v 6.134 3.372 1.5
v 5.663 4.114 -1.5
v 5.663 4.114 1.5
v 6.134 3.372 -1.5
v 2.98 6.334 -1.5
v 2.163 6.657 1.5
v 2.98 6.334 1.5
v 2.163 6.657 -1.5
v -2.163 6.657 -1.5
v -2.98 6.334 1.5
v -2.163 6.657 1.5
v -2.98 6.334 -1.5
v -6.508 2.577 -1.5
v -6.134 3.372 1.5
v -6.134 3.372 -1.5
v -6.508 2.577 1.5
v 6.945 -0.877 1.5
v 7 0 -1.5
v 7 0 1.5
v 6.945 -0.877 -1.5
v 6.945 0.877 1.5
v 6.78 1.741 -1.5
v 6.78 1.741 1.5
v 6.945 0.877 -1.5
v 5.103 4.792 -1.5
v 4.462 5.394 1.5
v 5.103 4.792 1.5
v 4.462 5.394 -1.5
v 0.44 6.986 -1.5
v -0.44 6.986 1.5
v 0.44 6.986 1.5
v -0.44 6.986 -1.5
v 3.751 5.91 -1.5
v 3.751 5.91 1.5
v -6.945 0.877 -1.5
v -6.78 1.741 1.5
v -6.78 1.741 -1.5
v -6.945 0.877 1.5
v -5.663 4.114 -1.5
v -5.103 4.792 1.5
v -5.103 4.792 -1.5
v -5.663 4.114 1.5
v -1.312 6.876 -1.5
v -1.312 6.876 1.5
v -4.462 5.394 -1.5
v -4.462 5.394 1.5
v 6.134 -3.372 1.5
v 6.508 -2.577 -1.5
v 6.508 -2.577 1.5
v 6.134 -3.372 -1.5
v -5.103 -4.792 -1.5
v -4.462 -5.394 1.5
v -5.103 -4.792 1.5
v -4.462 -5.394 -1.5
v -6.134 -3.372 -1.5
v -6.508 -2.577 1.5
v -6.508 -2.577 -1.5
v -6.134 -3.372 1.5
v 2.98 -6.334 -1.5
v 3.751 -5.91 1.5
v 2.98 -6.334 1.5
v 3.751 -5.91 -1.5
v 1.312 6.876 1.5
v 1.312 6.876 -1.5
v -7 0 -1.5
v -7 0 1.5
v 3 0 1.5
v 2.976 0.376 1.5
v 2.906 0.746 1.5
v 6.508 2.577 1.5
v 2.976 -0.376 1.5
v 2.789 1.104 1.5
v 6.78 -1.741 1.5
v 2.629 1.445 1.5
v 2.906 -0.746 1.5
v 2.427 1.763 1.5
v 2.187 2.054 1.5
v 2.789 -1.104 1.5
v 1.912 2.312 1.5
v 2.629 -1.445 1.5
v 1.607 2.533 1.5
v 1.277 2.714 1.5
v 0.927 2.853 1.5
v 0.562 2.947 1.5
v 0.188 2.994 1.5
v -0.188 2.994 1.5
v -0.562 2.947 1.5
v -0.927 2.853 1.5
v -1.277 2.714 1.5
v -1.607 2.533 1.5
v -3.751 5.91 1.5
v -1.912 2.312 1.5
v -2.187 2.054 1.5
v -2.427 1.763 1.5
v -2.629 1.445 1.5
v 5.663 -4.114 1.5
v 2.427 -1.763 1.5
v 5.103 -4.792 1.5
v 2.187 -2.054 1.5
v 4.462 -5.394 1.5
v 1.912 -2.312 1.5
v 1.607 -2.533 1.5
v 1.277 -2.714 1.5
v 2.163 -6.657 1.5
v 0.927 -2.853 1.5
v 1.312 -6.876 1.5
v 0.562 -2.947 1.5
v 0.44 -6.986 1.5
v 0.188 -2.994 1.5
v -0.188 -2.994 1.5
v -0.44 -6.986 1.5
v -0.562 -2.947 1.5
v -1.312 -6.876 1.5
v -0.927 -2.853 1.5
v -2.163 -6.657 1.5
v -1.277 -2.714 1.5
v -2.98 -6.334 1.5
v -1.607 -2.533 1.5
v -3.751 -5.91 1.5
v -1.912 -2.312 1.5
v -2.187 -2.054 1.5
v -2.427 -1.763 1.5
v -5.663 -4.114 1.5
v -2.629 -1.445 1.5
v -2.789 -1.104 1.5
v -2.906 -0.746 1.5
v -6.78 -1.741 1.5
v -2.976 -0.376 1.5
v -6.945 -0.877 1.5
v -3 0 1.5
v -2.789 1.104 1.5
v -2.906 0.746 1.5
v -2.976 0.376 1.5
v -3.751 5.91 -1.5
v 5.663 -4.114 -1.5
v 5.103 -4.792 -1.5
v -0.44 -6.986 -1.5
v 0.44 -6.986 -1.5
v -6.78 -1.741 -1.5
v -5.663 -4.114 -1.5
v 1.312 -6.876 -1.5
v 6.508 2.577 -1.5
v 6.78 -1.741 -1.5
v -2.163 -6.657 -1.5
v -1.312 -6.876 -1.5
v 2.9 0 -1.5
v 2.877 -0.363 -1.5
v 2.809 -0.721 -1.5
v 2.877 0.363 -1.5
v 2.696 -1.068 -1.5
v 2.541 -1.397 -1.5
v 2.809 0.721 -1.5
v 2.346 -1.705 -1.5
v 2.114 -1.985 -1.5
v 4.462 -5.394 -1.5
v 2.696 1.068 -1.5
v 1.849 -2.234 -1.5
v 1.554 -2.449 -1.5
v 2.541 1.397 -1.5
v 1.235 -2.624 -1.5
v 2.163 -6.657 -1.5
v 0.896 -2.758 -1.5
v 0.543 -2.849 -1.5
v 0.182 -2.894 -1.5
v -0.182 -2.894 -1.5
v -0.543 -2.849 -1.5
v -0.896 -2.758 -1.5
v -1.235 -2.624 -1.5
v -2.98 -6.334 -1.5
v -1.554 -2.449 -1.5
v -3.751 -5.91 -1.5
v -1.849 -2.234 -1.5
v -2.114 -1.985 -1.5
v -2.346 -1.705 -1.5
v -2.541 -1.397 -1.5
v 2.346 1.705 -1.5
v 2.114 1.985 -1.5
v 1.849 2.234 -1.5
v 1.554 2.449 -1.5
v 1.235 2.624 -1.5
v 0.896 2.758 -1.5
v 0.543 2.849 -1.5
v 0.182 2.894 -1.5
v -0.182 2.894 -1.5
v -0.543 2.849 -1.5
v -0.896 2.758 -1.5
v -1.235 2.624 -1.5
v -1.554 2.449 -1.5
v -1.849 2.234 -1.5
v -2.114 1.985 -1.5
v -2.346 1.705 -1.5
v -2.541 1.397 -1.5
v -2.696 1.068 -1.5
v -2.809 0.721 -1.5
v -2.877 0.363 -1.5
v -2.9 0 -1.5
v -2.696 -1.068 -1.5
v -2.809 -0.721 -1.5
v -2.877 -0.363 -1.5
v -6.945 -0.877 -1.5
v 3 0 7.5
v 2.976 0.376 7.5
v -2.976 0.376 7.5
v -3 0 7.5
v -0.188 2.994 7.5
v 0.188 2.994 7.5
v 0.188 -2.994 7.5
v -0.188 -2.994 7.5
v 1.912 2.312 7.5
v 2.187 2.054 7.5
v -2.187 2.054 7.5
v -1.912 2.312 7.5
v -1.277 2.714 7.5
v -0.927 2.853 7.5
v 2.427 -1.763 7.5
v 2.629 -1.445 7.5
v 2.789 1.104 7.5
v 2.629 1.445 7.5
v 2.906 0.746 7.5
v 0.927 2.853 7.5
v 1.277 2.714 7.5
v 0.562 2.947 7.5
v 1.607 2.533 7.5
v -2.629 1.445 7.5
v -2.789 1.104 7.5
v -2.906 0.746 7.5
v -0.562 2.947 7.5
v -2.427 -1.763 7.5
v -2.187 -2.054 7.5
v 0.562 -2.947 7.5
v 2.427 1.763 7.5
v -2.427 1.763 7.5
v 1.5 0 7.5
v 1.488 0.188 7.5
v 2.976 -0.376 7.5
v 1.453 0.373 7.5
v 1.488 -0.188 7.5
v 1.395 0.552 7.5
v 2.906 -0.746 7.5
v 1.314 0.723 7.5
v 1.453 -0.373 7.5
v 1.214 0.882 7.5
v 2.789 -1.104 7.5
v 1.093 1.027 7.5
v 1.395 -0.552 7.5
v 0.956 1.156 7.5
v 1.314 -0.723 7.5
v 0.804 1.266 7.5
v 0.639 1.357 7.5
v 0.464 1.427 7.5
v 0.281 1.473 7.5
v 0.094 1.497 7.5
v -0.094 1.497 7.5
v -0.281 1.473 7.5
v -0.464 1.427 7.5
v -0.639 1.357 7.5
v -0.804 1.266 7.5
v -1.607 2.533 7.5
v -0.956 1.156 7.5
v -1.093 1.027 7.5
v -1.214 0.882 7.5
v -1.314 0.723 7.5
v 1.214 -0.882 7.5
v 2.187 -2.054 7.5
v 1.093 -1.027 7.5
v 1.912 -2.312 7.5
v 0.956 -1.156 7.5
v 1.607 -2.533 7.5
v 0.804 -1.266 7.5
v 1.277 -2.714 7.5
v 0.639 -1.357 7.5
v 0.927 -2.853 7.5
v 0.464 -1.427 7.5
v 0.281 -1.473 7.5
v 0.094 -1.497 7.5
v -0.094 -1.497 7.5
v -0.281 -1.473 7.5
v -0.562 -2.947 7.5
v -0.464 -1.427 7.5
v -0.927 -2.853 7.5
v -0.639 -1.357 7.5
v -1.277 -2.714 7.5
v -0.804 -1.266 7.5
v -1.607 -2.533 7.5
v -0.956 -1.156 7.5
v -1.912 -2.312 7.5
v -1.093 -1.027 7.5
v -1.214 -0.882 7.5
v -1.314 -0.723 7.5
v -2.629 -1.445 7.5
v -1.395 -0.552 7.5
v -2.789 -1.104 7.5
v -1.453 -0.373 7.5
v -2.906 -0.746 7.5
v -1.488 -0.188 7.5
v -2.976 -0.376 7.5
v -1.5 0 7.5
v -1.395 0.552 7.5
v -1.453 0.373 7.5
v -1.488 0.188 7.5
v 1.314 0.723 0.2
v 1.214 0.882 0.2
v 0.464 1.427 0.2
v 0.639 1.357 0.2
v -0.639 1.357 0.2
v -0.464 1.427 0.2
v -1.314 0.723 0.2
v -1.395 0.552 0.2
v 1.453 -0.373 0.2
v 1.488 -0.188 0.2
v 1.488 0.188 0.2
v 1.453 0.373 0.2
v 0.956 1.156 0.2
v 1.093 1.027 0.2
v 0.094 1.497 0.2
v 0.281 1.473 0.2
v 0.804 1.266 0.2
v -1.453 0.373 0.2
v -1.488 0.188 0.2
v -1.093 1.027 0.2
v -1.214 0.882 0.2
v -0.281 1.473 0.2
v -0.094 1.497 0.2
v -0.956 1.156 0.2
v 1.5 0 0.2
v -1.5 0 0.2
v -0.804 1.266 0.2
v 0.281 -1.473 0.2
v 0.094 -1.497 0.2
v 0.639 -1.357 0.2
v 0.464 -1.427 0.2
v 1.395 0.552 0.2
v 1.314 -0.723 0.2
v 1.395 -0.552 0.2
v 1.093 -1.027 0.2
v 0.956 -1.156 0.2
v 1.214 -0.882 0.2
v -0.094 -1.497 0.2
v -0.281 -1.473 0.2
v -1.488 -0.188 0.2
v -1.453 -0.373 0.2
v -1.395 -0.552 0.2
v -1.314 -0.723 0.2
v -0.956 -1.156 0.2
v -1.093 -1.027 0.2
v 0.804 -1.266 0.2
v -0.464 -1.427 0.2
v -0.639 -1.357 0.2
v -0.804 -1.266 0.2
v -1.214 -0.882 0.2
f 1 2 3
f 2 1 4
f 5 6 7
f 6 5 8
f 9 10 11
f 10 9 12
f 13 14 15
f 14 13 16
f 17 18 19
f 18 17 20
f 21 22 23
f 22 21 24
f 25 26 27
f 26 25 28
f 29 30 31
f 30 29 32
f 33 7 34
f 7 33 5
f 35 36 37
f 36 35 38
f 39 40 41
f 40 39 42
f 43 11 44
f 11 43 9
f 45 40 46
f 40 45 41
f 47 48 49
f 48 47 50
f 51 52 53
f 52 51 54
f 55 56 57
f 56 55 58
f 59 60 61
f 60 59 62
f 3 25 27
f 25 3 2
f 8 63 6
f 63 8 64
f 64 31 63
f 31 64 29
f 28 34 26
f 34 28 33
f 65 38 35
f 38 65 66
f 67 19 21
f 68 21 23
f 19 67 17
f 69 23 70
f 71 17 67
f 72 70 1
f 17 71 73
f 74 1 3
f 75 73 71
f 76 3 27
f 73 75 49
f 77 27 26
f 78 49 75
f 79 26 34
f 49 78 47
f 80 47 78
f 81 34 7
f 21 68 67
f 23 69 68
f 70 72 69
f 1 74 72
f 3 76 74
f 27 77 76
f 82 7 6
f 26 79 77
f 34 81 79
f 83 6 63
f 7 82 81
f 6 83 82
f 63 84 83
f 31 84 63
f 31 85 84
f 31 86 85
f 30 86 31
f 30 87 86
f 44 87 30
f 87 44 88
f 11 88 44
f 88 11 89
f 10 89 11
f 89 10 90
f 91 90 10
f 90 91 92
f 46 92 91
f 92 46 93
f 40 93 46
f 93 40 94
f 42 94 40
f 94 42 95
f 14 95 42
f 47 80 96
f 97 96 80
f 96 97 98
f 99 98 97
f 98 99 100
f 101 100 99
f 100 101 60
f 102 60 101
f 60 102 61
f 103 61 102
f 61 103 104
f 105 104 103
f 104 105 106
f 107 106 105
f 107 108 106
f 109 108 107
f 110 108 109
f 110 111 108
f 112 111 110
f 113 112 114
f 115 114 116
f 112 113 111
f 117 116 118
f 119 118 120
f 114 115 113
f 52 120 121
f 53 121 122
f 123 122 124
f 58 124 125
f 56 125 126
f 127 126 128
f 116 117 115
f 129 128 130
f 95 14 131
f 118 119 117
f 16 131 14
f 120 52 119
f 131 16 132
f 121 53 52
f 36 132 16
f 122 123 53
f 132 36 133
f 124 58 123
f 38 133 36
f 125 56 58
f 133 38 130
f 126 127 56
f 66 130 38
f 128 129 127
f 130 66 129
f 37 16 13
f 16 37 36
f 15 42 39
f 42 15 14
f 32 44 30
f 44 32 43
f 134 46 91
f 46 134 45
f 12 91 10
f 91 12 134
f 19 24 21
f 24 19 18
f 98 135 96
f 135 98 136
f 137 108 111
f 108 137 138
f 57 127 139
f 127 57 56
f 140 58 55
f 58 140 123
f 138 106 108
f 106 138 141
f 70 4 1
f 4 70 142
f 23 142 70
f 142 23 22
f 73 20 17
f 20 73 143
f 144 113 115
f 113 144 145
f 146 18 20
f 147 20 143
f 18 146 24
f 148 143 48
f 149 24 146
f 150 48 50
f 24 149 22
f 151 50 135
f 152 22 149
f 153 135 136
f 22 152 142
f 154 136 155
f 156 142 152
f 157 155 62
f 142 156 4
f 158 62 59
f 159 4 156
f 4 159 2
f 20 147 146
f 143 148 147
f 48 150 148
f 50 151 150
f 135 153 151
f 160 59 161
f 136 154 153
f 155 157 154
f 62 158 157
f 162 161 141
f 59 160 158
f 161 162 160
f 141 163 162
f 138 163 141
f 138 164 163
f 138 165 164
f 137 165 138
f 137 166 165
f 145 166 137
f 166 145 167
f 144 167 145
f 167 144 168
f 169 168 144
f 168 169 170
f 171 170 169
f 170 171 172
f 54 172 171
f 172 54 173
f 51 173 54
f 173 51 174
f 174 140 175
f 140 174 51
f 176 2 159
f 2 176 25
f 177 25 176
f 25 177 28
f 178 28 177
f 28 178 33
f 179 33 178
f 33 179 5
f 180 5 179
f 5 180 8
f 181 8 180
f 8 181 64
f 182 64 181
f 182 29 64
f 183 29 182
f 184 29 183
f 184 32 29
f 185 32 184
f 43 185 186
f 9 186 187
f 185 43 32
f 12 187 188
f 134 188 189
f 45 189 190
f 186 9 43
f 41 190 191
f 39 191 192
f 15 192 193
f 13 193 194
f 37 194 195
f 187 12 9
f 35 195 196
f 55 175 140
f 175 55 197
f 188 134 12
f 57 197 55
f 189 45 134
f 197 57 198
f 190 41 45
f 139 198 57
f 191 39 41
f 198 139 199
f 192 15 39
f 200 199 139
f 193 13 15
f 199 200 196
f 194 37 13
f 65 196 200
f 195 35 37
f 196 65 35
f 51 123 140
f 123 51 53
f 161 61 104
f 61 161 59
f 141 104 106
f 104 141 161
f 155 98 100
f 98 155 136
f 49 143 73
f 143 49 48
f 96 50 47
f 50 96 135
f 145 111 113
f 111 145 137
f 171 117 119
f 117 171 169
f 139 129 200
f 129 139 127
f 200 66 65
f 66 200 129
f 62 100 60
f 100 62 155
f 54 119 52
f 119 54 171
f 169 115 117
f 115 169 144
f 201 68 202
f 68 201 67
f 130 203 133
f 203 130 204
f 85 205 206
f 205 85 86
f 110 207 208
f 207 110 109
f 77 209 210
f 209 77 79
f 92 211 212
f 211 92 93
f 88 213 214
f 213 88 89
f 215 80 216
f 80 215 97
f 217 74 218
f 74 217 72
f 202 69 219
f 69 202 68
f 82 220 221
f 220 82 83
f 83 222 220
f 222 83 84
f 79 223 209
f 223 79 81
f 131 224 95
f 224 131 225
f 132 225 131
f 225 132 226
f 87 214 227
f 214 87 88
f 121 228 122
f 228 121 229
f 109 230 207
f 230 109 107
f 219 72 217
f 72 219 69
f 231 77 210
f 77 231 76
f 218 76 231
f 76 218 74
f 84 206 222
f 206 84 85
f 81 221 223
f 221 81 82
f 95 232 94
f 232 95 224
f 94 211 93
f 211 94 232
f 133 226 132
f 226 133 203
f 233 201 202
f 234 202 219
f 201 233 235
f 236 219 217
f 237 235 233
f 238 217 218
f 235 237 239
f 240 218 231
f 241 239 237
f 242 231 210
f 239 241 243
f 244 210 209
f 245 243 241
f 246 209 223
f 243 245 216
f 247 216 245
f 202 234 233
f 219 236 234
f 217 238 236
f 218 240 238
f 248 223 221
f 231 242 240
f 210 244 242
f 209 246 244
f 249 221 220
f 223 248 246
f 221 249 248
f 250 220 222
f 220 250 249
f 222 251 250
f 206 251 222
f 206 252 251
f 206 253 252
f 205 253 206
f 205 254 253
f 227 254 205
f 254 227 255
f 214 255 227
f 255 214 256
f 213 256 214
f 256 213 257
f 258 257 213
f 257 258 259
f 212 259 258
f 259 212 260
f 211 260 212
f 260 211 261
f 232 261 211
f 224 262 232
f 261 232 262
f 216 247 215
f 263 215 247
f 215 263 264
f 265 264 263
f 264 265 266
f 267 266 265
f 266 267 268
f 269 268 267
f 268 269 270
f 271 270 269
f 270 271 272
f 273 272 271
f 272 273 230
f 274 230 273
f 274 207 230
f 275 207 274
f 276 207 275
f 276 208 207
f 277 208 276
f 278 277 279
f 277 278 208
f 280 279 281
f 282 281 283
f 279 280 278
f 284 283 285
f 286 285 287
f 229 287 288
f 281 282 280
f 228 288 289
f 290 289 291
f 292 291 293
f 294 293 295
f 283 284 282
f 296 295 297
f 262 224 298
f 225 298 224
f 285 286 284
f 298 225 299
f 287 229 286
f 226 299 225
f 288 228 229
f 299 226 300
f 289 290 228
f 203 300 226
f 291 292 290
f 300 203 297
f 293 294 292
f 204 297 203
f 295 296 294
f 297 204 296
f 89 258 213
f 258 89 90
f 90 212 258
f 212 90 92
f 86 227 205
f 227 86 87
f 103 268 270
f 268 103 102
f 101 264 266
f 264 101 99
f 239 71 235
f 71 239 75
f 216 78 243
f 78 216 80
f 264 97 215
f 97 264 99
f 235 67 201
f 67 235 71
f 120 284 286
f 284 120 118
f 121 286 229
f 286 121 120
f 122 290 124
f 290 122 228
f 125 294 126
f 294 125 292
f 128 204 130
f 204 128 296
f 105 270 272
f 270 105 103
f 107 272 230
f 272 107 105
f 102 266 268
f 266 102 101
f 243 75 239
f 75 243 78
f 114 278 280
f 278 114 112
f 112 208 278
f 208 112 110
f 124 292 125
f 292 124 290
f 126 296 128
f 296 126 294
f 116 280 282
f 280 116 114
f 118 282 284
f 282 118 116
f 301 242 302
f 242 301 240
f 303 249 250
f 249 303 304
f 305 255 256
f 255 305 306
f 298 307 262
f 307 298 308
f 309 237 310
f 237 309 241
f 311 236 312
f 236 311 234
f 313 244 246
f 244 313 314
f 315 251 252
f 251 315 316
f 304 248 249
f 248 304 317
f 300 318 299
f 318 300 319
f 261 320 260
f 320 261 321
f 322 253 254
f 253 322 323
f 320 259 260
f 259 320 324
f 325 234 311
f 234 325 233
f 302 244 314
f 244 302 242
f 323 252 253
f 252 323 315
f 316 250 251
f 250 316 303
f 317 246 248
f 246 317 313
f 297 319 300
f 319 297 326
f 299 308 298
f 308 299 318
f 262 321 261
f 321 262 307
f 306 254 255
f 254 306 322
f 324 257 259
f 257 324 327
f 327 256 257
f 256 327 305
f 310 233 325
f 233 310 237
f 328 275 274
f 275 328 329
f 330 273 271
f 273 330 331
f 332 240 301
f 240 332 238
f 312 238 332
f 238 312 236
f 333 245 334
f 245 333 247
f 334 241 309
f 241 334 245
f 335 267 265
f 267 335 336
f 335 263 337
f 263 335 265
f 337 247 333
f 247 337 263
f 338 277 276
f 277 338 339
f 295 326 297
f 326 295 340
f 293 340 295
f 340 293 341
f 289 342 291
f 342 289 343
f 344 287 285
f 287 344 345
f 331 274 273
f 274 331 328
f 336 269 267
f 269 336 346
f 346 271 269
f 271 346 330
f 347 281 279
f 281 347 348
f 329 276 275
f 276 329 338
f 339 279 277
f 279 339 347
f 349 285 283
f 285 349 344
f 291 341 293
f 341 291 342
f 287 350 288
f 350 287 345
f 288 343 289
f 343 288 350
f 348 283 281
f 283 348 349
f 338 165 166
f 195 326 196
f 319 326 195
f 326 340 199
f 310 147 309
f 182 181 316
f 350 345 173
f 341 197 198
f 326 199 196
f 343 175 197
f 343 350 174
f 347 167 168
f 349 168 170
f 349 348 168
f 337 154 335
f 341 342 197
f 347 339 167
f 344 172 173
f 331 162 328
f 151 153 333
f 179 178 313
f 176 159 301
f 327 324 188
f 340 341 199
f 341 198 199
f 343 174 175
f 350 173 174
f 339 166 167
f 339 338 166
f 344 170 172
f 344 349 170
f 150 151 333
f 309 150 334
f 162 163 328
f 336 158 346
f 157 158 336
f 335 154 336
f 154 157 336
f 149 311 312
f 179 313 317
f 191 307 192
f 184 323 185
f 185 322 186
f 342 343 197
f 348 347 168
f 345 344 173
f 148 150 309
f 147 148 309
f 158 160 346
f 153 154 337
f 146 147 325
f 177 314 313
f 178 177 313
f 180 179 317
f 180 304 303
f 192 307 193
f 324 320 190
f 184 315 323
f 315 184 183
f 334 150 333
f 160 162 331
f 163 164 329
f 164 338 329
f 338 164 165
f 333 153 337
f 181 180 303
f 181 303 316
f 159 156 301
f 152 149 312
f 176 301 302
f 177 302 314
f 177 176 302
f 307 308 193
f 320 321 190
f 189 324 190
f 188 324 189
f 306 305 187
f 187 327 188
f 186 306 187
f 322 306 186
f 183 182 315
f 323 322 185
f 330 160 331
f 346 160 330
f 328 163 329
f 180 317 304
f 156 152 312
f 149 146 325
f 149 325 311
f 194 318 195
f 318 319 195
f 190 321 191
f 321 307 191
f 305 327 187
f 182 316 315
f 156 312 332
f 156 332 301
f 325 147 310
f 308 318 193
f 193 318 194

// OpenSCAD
$fn = 50;


difference() {
	union() {
		translate(v = [0, 0, -1.5000000000]) {
			rotate(a = [0, 0, 0]) {
				cylinder(h = 3, r = 7.0000000000);
			}
		}
		translate(v = [0, 0, -1.5000000000]) {
			rotate(a = [0, 0, 0]) {
				cylinder(h = 9, r = 3.0000000000);
			}
		}
	}
	union() {
		translate(v = [0, 0, -125.0000000000]) {
			rotate(a = [0, 0, 0]) {
				cylinder(h = 250, r = 1.5000000000);
			}
		}
		#translate(v = [0, 0, 0.2000000000]) {
			rotate(a = [0, 180, 0]) {
				cylinder(h = 1.7000000000, r1 = 1.5000000000, r2 = 2.9000000000);
			}
		}
		#translate(v = [0, 0, 7.5000000000]) {
			rotate(a = [0, 180, 0]) {
				cylinder(h = 9, r = 1.5000000000);
			}
		}
	}
}
